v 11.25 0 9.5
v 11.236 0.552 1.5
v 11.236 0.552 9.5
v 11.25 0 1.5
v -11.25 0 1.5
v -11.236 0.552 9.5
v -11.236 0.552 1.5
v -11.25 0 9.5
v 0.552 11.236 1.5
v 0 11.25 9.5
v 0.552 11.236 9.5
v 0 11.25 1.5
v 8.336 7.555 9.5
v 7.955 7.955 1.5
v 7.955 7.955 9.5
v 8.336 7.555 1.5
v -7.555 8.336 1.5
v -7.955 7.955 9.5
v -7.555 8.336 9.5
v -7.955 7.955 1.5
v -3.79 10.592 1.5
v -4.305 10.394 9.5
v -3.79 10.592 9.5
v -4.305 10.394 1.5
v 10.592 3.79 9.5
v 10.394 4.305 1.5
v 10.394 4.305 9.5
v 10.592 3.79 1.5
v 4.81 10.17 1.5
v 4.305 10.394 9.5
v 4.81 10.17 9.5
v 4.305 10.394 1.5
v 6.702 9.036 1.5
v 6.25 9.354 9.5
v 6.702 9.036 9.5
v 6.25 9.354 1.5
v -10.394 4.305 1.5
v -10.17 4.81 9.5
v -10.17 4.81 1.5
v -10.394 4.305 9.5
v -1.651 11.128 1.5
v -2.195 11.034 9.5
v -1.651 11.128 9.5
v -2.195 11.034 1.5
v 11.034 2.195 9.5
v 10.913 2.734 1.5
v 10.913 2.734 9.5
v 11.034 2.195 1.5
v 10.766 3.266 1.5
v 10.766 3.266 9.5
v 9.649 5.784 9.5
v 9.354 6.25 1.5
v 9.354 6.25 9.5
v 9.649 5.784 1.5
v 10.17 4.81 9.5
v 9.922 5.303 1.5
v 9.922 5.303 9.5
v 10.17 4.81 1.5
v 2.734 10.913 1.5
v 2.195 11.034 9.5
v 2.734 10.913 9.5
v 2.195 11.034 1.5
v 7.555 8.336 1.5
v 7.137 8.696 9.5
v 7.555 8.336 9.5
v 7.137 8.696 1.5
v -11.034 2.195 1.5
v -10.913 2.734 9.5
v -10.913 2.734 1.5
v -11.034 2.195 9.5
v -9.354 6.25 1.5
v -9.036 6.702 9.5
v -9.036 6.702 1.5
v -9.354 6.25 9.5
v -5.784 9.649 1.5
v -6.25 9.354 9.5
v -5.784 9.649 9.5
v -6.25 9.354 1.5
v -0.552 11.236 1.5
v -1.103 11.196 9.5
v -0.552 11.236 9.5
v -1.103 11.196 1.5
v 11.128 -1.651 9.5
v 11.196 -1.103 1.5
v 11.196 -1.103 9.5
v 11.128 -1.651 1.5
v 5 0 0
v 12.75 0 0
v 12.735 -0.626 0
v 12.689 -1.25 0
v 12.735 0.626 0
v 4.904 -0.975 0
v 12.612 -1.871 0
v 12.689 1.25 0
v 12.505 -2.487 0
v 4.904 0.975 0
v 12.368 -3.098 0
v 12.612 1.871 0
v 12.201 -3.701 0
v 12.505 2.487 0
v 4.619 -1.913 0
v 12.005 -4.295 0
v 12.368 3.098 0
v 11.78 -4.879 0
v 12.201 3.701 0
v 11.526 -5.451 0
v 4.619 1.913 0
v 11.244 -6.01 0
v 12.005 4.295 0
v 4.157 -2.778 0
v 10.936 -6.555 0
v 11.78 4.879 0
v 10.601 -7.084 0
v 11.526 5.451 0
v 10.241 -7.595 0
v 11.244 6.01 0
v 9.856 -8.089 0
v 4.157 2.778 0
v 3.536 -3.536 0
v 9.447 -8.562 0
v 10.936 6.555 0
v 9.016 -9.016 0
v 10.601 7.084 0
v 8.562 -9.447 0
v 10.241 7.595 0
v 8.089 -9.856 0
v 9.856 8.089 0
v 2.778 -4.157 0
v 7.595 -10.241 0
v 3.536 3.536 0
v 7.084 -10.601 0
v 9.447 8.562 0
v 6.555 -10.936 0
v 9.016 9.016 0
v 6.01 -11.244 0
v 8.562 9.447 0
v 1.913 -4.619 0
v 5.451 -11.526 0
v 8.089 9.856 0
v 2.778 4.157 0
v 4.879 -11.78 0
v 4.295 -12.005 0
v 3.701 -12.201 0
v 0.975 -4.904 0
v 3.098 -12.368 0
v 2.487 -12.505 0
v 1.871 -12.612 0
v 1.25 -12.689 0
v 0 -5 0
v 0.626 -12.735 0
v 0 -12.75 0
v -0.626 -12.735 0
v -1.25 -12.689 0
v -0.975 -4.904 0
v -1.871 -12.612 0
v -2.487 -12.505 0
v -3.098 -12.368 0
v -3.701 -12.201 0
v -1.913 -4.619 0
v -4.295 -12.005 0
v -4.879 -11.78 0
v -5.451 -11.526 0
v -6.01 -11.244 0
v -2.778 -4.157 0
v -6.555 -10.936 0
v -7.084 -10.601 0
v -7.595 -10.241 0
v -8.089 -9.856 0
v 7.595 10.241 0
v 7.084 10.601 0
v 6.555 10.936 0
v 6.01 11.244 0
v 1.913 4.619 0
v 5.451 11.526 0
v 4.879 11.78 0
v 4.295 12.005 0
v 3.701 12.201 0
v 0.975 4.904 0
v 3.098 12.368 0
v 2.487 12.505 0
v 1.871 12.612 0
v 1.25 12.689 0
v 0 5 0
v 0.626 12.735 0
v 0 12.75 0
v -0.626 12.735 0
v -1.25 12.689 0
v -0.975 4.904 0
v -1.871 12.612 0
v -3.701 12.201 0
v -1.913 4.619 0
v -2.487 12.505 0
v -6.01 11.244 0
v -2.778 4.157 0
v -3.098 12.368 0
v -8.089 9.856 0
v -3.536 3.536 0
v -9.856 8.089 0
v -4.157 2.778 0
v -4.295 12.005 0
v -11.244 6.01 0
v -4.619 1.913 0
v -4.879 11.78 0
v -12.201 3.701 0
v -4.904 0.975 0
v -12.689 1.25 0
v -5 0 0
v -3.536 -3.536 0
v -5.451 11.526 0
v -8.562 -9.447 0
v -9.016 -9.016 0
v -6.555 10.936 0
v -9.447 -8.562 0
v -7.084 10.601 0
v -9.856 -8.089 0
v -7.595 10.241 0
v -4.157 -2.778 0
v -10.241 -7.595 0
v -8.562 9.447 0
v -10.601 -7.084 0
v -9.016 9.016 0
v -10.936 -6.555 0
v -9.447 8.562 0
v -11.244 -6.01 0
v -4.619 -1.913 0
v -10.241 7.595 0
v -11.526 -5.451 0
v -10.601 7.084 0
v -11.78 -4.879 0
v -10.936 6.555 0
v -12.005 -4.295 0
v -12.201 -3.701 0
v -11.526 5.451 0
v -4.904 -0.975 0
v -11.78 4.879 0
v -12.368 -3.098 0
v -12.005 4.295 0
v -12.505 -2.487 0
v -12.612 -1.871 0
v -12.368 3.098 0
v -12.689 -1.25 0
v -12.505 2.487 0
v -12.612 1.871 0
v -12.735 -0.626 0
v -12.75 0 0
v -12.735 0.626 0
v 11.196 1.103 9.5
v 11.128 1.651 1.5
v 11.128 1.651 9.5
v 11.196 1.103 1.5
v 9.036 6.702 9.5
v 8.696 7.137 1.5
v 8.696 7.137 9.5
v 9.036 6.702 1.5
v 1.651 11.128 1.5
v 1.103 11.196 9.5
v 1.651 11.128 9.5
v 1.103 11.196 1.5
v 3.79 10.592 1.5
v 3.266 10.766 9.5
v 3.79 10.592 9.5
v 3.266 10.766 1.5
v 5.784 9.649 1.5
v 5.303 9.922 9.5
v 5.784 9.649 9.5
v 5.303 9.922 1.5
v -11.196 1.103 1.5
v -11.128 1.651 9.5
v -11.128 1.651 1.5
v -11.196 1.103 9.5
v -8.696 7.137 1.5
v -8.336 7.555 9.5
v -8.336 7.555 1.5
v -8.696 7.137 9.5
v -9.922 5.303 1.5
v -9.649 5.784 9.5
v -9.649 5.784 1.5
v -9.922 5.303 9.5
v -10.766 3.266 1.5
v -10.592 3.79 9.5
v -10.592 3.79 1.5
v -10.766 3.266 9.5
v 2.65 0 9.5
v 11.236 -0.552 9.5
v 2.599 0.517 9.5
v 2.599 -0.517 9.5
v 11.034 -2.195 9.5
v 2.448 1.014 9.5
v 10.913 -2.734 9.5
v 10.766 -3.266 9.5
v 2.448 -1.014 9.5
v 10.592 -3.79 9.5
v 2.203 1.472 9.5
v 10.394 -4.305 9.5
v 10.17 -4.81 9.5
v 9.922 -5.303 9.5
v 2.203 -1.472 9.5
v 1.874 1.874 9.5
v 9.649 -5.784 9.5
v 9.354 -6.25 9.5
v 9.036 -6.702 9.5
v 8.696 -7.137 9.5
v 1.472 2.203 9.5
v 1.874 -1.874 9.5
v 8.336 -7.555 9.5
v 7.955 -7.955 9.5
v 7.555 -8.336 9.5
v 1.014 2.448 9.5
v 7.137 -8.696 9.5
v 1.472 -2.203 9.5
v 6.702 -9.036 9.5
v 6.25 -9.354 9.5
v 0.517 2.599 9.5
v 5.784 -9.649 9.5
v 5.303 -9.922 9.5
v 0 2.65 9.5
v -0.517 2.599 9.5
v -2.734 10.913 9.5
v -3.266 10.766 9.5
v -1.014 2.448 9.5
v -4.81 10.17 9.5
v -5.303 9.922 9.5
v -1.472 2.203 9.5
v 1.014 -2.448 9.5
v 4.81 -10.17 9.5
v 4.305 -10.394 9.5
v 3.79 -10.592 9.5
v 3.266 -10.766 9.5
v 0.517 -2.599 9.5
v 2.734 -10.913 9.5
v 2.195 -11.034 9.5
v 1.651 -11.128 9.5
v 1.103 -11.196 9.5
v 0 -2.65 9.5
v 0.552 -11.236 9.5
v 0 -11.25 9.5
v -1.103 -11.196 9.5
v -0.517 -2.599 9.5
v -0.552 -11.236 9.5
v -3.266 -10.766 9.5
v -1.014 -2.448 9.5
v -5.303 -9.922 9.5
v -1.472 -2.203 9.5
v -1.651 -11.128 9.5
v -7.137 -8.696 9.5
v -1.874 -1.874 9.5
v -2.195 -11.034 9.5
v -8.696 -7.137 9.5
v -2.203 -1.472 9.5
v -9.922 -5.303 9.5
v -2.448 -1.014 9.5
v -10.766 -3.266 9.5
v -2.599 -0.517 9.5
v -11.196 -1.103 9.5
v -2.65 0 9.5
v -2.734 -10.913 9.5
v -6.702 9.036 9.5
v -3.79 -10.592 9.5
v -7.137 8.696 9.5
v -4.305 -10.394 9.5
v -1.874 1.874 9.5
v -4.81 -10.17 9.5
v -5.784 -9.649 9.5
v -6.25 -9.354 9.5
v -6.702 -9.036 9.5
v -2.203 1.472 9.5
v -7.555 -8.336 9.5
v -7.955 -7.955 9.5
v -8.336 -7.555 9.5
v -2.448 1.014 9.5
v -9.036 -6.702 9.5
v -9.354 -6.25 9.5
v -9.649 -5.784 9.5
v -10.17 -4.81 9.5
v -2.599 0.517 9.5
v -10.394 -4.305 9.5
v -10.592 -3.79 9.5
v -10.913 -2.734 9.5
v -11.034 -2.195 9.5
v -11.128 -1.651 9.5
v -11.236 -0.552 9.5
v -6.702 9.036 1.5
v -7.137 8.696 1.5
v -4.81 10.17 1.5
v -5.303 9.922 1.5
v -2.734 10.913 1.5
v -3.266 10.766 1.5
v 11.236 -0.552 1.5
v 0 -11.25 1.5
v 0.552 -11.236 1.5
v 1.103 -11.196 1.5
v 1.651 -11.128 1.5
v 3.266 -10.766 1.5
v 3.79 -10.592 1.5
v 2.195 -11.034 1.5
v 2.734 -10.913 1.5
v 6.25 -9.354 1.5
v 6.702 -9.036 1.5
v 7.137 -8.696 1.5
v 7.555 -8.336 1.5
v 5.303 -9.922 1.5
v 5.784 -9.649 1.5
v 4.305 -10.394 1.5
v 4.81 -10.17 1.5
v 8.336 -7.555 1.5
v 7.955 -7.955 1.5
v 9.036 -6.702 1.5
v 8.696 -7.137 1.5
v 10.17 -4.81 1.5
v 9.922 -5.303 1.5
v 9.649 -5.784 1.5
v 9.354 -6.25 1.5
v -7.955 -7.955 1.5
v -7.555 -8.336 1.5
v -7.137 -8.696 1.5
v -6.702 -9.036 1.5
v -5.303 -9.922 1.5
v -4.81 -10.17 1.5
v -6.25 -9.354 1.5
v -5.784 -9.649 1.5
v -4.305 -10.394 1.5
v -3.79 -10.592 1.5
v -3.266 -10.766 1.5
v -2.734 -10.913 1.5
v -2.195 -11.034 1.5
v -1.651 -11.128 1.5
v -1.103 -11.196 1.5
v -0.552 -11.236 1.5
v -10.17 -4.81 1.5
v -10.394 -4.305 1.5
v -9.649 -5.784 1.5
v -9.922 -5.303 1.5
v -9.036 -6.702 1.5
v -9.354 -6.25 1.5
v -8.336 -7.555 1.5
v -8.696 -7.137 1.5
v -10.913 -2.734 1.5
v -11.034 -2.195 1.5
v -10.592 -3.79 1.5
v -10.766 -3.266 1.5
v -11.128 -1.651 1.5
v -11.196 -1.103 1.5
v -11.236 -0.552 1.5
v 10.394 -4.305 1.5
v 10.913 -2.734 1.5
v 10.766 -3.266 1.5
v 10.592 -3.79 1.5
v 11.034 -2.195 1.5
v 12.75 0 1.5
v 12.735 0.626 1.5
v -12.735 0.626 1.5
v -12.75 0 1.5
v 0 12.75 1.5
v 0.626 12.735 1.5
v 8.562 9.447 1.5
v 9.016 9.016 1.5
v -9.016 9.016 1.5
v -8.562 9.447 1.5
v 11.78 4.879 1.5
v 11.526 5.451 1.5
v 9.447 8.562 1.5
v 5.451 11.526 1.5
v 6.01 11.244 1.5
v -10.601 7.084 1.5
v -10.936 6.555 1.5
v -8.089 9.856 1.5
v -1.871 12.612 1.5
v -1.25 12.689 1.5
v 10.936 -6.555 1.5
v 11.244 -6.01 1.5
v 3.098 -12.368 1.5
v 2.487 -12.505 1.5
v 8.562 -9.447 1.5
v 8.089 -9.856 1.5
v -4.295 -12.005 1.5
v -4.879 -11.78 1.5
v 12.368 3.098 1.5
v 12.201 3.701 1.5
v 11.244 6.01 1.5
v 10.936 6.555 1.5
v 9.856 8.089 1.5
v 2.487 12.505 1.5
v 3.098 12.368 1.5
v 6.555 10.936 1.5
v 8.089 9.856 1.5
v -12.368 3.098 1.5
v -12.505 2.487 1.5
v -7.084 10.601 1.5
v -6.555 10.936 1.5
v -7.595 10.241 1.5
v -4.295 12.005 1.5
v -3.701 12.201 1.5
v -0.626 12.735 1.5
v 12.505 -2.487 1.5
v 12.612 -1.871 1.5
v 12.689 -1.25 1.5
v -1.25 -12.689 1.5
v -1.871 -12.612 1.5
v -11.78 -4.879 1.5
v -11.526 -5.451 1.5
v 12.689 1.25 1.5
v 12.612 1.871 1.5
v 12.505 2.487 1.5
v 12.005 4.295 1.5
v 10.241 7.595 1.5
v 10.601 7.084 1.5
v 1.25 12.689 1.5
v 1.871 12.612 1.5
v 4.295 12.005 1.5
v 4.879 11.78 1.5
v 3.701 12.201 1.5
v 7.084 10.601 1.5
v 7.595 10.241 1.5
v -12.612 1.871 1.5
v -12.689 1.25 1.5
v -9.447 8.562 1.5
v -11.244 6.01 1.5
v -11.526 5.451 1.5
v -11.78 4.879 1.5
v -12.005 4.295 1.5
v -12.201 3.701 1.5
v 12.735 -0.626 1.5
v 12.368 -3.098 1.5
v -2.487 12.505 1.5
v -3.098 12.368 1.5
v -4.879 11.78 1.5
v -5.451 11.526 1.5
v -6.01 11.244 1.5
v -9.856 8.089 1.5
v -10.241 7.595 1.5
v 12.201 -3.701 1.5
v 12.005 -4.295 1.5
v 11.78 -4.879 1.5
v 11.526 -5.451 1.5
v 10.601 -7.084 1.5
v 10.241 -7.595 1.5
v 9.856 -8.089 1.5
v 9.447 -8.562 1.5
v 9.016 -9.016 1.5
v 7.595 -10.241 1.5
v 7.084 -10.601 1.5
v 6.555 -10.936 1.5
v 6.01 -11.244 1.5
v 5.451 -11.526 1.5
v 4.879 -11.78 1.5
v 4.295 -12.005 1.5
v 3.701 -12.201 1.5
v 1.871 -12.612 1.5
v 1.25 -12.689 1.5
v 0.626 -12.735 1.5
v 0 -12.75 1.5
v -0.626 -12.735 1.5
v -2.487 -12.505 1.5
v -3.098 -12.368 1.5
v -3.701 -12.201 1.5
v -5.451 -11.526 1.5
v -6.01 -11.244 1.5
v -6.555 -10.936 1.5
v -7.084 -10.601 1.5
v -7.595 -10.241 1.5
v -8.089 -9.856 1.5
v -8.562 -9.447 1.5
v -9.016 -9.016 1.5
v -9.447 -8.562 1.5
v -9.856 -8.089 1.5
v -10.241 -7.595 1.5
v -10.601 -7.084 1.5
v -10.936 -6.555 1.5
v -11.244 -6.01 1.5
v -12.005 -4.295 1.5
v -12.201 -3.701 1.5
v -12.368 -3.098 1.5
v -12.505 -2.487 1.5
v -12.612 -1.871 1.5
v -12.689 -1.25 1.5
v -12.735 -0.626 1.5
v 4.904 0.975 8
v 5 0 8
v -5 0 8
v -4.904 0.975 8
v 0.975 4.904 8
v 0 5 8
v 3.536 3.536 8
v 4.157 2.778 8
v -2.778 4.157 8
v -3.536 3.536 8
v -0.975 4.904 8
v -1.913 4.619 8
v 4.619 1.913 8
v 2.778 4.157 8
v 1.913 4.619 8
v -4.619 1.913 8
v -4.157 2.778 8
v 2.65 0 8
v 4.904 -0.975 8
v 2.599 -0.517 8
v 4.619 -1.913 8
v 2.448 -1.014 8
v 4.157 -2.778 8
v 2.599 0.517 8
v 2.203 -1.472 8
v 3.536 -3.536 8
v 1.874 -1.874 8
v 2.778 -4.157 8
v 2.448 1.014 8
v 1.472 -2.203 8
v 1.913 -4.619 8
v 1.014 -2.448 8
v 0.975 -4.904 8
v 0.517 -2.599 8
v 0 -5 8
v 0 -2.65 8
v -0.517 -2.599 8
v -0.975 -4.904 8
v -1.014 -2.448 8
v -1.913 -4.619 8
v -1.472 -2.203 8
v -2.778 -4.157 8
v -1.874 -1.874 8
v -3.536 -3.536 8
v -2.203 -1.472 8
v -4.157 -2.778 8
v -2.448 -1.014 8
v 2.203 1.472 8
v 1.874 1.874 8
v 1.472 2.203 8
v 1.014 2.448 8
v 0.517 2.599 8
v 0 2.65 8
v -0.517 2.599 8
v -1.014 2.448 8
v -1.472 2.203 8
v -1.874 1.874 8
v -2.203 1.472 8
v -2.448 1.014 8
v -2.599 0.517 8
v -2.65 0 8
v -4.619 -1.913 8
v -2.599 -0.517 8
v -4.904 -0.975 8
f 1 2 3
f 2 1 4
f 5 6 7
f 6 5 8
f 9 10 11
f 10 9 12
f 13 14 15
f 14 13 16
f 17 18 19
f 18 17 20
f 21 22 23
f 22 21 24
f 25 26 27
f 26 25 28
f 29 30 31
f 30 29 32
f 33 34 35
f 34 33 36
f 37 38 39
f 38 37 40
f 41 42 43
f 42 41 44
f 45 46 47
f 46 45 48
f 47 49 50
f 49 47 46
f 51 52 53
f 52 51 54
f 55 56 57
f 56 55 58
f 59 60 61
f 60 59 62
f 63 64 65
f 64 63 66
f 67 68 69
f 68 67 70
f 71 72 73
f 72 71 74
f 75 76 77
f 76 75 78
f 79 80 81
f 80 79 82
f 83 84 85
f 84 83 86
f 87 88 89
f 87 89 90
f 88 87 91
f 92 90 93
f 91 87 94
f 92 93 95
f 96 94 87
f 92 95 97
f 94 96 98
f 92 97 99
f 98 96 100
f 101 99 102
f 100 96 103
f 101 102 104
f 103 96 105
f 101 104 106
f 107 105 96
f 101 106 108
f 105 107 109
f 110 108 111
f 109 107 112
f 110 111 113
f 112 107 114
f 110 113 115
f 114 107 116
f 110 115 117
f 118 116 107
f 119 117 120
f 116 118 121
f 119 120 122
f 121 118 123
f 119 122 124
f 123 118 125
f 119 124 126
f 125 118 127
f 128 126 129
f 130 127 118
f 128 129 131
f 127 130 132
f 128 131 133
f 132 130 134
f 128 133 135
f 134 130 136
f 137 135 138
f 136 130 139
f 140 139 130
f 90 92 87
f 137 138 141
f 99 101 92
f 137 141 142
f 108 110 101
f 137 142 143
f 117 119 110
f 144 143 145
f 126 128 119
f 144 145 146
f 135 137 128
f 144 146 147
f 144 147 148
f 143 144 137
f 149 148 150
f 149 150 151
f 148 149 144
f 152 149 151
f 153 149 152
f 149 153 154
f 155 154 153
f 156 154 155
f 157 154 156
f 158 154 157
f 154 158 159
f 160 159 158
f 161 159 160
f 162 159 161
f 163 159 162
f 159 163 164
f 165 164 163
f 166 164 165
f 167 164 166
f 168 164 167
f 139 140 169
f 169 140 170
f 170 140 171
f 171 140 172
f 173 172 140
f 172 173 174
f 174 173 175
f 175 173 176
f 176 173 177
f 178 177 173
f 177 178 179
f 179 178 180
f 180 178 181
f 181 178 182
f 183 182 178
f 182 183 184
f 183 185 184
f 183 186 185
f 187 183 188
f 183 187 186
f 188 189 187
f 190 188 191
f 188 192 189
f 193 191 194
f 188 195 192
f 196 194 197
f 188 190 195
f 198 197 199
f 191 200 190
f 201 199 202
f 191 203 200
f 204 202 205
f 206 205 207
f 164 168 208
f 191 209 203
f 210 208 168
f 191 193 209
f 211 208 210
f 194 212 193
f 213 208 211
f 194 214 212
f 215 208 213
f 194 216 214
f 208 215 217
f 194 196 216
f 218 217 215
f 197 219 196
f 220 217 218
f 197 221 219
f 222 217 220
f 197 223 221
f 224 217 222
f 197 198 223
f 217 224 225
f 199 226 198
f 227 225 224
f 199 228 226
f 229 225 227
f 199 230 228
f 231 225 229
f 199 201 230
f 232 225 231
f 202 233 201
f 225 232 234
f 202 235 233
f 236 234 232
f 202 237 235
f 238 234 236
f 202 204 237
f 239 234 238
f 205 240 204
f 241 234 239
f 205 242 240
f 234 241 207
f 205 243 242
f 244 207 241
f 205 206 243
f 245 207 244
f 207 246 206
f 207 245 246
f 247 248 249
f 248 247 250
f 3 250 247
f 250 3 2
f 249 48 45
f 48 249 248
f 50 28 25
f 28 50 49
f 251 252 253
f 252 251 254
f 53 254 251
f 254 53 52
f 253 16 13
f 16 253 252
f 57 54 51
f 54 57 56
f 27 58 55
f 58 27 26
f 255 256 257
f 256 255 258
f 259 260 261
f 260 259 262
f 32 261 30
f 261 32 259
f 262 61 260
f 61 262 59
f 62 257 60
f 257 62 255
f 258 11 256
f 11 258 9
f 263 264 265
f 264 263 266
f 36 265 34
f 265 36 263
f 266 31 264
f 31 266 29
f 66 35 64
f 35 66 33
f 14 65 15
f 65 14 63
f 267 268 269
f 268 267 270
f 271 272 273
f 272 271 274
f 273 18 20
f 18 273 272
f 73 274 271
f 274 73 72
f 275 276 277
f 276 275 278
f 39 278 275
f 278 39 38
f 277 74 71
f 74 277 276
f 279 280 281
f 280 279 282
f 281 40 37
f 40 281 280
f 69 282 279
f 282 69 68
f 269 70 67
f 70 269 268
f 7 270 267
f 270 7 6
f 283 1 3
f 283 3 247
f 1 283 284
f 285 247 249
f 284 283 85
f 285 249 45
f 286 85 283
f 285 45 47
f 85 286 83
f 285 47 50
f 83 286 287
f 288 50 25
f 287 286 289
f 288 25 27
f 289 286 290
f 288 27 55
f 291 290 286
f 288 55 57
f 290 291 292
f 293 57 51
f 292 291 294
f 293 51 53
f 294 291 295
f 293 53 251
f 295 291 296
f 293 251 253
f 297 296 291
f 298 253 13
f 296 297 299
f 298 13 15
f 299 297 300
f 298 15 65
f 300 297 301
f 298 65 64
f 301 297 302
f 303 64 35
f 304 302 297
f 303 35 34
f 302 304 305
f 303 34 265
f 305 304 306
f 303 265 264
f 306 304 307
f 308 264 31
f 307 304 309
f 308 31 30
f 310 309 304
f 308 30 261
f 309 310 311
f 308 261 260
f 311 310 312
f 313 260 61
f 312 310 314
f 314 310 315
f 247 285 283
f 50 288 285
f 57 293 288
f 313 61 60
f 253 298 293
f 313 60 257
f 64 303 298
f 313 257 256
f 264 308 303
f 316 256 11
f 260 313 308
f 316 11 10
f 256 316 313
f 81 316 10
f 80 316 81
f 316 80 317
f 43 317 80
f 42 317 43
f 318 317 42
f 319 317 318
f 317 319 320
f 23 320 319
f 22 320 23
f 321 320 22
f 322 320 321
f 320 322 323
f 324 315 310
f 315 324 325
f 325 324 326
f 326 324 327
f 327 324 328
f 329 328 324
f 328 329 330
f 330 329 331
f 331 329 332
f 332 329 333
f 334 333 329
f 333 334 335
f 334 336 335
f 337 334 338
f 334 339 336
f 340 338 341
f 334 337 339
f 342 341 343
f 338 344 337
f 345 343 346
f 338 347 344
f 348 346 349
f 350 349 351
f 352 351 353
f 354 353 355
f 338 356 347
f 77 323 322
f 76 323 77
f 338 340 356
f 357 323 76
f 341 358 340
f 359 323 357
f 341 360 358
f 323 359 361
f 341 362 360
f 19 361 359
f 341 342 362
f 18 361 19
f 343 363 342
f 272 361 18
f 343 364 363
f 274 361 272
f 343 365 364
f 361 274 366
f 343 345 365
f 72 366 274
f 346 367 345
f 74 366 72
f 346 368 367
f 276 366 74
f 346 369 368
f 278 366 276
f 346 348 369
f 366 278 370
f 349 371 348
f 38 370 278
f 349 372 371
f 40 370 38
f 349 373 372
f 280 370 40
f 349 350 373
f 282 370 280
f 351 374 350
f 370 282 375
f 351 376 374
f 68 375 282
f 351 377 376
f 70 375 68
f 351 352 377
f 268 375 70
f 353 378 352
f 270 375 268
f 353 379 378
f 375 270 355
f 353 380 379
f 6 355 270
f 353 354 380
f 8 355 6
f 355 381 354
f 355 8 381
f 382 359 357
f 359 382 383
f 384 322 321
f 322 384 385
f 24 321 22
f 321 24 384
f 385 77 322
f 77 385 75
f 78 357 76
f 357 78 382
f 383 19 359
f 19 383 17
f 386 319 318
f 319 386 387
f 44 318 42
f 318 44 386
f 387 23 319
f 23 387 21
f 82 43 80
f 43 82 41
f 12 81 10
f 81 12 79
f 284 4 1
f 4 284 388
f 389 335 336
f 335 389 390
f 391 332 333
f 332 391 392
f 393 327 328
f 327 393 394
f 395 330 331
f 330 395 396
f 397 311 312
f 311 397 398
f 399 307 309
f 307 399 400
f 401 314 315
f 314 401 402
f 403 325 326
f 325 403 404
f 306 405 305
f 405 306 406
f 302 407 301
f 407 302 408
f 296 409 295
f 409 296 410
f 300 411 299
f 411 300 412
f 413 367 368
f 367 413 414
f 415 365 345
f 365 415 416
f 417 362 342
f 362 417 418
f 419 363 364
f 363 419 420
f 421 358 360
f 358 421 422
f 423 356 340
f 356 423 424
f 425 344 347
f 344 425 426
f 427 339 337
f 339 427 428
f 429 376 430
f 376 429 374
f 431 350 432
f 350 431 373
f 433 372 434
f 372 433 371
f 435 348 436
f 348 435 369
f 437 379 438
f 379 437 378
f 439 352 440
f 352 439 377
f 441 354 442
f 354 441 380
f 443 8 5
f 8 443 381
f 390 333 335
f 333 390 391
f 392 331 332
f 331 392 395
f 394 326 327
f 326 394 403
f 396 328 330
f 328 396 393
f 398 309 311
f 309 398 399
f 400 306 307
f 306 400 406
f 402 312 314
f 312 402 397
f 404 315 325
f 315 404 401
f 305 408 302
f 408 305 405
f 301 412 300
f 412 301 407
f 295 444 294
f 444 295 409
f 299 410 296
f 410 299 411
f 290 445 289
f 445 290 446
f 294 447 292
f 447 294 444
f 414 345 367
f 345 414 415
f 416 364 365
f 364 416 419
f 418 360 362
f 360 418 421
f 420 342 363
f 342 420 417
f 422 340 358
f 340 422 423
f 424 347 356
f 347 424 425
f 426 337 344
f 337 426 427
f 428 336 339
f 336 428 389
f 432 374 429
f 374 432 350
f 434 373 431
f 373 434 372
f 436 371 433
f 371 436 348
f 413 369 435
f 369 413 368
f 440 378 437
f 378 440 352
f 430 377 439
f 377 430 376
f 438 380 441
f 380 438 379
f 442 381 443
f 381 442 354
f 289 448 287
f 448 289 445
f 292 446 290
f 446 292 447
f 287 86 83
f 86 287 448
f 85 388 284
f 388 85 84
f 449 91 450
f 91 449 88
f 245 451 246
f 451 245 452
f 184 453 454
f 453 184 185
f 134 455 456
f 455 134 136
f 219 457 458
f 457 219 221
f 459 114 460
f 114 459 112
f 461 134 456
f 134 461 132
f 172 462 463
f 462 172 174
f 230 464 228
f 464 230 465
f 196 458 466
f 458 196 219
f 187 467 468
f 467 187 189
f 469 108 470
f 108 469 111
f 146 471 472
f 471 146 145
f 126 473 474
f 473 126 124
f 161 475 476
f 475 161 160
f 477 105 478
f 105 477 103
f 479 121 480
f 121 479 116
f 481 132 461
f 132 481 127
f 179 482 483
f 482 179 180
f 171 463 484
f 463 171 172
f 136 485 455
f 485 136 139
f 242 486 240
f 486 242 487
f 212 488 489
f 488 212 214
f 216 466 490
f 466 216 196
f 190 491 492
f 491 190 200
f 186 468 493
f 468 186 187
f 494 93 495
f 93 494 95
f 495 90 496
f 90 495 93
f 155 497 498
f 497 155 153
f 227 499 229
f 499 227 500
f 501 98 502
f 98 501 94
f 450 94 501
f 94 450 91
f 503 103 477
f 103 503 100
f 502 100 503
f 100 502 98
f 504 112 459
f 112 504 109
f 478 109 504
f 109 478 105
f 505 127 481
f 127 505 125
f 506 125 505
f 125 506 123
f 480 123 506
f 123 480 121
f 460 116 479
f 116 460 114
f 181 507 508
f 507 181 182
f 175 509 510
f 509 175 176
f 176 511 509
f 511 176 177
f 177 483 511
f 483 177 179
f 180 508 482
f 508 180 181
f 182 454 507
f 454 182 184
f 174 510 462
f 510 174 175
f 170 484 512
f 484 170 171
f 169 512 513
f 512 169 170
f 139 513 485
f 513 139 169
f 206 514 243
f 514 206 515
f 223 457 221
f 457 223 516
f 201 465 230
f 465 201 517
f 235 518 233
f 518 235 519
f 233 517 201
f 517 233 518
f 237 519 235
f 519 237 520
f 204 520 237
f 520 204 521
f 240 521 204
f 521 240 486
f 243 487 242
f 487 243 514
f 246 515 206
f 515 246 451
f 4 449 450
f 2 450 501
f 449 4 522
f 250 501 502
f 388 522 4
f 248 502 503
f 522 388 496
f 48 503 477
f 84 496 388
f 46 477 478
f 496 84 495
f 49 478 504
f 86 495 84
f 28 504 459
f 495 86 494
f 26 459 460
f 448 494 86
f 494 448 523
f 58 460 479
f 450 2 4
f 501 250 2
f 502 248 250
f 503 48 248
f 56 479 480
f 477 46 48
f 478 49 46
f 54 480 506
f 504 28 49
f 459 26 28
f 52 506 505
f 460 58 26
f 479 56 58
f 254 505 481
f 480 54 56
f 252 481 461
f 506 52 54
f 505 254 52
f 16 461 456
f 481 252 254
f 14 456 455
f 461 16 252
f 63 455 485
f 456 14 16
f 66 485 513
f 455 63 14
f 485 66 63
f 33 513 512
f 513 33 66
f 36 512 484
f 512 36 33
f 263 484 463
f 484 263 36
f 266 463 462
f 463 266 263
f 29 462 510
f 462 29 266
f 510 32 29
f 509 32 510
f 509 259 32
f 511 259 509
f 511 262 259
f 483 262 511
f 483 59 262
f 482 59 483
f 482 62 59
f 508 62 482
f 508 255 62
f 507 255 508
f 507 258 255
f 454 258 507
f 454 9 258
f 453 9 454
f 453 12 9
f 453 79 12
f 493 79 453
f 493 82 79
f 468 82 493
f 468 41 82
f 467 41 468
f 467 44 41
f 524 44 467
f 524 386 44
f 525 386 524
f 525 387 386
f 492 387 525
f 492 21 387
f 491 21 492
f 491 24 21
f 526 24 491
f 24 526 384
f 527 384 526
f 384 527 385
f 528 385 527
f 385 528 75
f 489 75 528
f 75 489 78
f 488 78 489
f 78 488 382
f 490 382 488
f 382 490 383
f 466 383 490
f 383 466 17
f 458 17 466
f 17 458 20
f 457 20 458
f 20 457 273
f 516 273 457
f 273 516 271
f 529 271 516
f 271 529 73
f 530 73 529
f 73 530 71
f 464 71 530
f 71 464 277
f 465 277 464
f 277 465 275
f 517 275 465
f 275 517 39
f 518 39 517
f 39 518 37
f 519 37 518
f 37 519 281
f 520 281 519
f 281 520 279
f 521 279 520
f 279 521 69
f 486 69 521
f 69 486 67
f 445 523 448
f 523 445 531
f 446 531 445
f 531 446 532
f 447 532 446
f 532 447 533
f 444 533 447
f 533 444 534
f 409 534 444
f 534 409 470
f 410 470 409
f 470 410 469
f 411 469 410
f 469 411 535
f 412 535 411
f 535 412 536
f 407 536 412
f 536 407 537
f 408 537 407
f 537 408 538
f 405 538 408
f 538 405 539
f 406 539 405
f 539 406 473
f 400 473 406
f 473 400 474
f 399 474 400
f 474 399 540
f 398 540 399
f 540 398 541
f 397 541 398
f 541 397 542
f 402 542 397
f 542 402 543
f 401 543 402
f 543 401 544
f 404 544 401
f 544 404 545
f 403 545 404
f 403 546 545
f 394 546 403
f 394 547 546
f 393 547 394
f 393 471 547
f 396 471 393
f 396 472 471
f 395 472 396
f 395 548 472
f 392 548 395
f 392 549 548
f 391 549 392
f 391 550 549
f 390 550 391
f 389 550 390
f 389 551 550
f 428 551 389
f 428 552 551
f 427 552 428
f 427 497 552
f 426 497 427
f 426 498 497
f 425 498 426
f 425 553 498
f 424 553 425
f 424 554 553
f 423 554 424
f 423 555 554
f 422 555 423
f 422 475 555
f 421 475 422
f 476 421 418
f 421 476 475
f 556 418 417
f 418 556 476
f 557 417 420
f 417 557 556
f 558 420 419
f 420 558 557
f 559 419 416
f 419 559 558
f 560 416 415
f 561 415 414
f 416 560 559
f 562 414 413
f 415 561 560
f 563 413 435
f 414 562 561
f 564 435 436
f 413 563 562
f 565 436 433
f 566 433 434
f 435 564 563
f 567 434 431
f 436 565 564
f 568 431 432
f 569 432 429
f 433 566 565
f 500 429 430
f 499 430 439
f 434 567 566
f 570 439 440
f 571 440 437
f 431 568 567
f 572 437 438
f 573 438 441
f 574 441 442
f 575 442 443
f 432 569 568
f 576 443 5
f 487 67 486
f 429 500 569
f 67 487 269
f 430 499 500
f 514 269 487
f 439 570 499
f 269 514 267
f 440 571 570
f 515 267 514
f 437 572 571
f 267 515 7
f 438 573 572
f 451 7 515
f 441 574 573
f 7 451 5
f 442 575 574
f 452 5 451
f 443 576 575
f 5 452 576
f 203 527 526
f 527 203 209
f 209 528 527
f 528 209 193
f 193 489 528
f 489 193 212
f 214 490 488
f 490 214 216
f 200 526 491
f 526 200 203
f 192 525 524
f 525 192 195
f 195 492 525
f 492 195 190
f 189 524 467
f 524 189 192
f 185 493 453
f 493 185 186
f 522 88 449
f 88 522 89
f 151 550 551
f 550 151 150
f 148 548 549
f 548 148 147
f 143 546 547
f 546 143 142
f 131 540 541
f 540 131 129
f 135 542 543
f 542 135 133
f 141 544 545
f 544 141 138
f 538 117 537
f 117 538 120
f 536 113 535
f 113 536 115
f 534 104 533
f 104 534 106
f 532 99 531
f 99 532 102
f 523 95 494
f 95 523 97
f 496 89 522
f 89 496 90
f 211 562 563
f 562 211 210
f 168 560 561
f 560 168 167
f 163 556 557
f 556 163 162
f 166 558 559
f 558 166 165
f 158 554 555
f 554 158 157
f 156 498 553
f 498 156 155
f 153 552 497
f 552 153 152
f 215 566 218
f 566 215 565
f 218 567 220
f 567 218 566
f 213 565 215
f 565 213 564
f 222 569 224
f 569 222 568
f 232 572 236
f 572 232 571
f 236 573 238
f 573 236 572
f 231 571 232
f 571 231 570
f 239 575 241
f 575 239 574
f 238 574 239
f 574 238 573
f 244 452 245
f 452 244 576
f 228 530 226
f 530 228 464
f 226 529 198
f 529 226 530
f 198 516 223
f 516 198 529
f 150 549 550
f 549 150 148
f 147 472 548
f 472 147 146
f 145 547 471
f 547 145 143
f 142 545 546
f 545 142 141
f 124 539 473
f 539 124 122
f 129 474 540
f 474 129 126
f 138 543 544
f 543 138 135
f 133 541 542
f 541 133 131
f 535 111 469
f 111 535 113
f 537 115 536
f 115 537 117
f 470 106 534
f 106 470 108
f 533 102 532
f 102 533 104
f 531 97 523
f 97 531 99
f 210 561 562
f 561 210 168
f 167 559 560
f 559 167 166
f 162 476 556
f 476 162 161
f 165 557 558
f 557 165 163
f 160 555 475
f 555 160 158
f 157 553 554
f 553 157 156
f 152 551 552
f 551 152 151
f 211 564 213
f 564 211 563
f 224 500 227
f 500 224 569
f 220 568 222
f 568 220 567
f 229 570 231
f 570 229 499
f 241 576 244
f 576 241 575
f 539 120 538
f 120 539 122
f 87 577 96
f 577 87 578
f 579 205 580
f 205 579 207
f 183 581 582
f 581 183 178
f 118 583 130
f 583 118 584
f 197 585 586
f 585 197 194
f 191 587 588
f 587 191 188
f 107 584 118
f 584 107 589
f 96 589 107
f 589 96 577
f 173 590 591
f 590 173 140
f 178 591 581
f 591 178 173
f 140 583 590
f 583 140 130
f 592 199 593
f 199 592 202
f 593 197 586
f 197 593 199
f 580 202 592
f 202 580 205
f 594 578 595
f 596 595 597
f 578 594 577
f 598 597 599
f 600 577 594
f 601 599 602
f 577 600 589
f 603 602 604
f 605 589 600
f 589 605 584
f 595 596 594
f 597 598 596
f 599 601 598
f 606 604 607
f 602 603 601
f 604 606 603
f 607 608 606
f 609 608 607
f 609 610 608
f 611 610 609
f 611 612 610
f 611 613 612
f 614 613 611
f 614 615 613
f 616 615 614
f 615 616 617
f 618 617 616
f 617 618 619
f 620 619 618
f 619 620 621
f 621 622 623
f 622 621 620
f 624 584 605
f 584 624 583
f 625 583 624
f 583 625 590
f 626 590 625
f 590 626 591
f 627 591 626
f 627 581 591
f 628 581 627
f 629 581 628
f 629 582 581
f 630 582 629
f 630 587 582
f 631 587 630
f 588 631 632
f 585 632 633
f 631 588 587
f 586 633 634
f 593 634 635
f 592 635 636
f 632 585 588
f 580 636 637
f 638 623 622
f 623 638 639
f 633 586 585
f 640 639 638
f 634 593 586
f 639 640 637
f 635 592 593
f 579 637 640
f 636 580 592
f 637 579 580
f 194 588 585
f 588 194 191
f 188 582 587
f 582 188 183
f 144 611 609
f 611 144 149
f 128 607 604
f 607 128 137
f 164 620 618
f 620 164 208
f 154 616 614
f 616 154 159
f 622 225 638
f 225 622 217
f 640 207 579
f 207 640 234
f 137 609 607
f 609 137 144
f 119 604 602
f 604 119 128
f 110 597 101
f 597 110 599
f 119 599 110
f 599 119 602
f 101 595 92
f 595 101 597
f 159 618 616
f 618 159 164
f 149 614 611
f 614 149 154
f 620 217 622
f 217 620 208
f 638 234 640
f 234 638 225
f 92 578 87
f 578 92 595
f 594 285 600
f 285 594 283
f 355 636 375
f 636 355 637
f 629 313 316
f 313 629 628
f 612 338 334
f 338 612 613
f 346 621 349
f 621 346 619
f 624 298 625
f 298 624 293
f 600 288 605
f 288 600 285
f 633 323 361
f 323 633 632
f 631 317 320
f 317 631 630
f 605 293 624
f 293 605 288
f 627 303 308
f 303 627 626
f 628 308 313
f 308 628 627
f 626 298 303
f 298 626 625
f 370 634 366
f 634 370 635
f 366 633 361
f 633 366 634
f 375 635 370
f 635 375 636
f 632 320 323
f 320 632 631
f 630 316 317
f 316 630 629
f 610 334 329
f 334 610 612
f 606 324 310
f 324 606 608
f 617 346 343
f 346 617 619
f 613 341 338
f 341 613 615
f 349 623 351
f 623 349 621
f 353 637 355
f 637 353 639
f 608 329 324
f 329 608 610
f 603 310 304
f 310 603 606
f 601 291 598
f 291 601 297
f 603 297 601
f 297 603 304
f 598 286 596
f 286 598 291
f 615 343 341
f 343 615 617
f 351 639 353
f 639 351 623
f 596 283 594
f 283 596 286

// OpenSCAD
difference() {
    union() {
    cylinder(d=22.5,h=8+1.5,$fn=128);    
    cylinder(d=25.5,h=1.5,$fn=128);
    }
    cylinder(d=10,h=6+2,$fn=32);
    cylinder(d=5.3,h=10,$fn=32);
}
